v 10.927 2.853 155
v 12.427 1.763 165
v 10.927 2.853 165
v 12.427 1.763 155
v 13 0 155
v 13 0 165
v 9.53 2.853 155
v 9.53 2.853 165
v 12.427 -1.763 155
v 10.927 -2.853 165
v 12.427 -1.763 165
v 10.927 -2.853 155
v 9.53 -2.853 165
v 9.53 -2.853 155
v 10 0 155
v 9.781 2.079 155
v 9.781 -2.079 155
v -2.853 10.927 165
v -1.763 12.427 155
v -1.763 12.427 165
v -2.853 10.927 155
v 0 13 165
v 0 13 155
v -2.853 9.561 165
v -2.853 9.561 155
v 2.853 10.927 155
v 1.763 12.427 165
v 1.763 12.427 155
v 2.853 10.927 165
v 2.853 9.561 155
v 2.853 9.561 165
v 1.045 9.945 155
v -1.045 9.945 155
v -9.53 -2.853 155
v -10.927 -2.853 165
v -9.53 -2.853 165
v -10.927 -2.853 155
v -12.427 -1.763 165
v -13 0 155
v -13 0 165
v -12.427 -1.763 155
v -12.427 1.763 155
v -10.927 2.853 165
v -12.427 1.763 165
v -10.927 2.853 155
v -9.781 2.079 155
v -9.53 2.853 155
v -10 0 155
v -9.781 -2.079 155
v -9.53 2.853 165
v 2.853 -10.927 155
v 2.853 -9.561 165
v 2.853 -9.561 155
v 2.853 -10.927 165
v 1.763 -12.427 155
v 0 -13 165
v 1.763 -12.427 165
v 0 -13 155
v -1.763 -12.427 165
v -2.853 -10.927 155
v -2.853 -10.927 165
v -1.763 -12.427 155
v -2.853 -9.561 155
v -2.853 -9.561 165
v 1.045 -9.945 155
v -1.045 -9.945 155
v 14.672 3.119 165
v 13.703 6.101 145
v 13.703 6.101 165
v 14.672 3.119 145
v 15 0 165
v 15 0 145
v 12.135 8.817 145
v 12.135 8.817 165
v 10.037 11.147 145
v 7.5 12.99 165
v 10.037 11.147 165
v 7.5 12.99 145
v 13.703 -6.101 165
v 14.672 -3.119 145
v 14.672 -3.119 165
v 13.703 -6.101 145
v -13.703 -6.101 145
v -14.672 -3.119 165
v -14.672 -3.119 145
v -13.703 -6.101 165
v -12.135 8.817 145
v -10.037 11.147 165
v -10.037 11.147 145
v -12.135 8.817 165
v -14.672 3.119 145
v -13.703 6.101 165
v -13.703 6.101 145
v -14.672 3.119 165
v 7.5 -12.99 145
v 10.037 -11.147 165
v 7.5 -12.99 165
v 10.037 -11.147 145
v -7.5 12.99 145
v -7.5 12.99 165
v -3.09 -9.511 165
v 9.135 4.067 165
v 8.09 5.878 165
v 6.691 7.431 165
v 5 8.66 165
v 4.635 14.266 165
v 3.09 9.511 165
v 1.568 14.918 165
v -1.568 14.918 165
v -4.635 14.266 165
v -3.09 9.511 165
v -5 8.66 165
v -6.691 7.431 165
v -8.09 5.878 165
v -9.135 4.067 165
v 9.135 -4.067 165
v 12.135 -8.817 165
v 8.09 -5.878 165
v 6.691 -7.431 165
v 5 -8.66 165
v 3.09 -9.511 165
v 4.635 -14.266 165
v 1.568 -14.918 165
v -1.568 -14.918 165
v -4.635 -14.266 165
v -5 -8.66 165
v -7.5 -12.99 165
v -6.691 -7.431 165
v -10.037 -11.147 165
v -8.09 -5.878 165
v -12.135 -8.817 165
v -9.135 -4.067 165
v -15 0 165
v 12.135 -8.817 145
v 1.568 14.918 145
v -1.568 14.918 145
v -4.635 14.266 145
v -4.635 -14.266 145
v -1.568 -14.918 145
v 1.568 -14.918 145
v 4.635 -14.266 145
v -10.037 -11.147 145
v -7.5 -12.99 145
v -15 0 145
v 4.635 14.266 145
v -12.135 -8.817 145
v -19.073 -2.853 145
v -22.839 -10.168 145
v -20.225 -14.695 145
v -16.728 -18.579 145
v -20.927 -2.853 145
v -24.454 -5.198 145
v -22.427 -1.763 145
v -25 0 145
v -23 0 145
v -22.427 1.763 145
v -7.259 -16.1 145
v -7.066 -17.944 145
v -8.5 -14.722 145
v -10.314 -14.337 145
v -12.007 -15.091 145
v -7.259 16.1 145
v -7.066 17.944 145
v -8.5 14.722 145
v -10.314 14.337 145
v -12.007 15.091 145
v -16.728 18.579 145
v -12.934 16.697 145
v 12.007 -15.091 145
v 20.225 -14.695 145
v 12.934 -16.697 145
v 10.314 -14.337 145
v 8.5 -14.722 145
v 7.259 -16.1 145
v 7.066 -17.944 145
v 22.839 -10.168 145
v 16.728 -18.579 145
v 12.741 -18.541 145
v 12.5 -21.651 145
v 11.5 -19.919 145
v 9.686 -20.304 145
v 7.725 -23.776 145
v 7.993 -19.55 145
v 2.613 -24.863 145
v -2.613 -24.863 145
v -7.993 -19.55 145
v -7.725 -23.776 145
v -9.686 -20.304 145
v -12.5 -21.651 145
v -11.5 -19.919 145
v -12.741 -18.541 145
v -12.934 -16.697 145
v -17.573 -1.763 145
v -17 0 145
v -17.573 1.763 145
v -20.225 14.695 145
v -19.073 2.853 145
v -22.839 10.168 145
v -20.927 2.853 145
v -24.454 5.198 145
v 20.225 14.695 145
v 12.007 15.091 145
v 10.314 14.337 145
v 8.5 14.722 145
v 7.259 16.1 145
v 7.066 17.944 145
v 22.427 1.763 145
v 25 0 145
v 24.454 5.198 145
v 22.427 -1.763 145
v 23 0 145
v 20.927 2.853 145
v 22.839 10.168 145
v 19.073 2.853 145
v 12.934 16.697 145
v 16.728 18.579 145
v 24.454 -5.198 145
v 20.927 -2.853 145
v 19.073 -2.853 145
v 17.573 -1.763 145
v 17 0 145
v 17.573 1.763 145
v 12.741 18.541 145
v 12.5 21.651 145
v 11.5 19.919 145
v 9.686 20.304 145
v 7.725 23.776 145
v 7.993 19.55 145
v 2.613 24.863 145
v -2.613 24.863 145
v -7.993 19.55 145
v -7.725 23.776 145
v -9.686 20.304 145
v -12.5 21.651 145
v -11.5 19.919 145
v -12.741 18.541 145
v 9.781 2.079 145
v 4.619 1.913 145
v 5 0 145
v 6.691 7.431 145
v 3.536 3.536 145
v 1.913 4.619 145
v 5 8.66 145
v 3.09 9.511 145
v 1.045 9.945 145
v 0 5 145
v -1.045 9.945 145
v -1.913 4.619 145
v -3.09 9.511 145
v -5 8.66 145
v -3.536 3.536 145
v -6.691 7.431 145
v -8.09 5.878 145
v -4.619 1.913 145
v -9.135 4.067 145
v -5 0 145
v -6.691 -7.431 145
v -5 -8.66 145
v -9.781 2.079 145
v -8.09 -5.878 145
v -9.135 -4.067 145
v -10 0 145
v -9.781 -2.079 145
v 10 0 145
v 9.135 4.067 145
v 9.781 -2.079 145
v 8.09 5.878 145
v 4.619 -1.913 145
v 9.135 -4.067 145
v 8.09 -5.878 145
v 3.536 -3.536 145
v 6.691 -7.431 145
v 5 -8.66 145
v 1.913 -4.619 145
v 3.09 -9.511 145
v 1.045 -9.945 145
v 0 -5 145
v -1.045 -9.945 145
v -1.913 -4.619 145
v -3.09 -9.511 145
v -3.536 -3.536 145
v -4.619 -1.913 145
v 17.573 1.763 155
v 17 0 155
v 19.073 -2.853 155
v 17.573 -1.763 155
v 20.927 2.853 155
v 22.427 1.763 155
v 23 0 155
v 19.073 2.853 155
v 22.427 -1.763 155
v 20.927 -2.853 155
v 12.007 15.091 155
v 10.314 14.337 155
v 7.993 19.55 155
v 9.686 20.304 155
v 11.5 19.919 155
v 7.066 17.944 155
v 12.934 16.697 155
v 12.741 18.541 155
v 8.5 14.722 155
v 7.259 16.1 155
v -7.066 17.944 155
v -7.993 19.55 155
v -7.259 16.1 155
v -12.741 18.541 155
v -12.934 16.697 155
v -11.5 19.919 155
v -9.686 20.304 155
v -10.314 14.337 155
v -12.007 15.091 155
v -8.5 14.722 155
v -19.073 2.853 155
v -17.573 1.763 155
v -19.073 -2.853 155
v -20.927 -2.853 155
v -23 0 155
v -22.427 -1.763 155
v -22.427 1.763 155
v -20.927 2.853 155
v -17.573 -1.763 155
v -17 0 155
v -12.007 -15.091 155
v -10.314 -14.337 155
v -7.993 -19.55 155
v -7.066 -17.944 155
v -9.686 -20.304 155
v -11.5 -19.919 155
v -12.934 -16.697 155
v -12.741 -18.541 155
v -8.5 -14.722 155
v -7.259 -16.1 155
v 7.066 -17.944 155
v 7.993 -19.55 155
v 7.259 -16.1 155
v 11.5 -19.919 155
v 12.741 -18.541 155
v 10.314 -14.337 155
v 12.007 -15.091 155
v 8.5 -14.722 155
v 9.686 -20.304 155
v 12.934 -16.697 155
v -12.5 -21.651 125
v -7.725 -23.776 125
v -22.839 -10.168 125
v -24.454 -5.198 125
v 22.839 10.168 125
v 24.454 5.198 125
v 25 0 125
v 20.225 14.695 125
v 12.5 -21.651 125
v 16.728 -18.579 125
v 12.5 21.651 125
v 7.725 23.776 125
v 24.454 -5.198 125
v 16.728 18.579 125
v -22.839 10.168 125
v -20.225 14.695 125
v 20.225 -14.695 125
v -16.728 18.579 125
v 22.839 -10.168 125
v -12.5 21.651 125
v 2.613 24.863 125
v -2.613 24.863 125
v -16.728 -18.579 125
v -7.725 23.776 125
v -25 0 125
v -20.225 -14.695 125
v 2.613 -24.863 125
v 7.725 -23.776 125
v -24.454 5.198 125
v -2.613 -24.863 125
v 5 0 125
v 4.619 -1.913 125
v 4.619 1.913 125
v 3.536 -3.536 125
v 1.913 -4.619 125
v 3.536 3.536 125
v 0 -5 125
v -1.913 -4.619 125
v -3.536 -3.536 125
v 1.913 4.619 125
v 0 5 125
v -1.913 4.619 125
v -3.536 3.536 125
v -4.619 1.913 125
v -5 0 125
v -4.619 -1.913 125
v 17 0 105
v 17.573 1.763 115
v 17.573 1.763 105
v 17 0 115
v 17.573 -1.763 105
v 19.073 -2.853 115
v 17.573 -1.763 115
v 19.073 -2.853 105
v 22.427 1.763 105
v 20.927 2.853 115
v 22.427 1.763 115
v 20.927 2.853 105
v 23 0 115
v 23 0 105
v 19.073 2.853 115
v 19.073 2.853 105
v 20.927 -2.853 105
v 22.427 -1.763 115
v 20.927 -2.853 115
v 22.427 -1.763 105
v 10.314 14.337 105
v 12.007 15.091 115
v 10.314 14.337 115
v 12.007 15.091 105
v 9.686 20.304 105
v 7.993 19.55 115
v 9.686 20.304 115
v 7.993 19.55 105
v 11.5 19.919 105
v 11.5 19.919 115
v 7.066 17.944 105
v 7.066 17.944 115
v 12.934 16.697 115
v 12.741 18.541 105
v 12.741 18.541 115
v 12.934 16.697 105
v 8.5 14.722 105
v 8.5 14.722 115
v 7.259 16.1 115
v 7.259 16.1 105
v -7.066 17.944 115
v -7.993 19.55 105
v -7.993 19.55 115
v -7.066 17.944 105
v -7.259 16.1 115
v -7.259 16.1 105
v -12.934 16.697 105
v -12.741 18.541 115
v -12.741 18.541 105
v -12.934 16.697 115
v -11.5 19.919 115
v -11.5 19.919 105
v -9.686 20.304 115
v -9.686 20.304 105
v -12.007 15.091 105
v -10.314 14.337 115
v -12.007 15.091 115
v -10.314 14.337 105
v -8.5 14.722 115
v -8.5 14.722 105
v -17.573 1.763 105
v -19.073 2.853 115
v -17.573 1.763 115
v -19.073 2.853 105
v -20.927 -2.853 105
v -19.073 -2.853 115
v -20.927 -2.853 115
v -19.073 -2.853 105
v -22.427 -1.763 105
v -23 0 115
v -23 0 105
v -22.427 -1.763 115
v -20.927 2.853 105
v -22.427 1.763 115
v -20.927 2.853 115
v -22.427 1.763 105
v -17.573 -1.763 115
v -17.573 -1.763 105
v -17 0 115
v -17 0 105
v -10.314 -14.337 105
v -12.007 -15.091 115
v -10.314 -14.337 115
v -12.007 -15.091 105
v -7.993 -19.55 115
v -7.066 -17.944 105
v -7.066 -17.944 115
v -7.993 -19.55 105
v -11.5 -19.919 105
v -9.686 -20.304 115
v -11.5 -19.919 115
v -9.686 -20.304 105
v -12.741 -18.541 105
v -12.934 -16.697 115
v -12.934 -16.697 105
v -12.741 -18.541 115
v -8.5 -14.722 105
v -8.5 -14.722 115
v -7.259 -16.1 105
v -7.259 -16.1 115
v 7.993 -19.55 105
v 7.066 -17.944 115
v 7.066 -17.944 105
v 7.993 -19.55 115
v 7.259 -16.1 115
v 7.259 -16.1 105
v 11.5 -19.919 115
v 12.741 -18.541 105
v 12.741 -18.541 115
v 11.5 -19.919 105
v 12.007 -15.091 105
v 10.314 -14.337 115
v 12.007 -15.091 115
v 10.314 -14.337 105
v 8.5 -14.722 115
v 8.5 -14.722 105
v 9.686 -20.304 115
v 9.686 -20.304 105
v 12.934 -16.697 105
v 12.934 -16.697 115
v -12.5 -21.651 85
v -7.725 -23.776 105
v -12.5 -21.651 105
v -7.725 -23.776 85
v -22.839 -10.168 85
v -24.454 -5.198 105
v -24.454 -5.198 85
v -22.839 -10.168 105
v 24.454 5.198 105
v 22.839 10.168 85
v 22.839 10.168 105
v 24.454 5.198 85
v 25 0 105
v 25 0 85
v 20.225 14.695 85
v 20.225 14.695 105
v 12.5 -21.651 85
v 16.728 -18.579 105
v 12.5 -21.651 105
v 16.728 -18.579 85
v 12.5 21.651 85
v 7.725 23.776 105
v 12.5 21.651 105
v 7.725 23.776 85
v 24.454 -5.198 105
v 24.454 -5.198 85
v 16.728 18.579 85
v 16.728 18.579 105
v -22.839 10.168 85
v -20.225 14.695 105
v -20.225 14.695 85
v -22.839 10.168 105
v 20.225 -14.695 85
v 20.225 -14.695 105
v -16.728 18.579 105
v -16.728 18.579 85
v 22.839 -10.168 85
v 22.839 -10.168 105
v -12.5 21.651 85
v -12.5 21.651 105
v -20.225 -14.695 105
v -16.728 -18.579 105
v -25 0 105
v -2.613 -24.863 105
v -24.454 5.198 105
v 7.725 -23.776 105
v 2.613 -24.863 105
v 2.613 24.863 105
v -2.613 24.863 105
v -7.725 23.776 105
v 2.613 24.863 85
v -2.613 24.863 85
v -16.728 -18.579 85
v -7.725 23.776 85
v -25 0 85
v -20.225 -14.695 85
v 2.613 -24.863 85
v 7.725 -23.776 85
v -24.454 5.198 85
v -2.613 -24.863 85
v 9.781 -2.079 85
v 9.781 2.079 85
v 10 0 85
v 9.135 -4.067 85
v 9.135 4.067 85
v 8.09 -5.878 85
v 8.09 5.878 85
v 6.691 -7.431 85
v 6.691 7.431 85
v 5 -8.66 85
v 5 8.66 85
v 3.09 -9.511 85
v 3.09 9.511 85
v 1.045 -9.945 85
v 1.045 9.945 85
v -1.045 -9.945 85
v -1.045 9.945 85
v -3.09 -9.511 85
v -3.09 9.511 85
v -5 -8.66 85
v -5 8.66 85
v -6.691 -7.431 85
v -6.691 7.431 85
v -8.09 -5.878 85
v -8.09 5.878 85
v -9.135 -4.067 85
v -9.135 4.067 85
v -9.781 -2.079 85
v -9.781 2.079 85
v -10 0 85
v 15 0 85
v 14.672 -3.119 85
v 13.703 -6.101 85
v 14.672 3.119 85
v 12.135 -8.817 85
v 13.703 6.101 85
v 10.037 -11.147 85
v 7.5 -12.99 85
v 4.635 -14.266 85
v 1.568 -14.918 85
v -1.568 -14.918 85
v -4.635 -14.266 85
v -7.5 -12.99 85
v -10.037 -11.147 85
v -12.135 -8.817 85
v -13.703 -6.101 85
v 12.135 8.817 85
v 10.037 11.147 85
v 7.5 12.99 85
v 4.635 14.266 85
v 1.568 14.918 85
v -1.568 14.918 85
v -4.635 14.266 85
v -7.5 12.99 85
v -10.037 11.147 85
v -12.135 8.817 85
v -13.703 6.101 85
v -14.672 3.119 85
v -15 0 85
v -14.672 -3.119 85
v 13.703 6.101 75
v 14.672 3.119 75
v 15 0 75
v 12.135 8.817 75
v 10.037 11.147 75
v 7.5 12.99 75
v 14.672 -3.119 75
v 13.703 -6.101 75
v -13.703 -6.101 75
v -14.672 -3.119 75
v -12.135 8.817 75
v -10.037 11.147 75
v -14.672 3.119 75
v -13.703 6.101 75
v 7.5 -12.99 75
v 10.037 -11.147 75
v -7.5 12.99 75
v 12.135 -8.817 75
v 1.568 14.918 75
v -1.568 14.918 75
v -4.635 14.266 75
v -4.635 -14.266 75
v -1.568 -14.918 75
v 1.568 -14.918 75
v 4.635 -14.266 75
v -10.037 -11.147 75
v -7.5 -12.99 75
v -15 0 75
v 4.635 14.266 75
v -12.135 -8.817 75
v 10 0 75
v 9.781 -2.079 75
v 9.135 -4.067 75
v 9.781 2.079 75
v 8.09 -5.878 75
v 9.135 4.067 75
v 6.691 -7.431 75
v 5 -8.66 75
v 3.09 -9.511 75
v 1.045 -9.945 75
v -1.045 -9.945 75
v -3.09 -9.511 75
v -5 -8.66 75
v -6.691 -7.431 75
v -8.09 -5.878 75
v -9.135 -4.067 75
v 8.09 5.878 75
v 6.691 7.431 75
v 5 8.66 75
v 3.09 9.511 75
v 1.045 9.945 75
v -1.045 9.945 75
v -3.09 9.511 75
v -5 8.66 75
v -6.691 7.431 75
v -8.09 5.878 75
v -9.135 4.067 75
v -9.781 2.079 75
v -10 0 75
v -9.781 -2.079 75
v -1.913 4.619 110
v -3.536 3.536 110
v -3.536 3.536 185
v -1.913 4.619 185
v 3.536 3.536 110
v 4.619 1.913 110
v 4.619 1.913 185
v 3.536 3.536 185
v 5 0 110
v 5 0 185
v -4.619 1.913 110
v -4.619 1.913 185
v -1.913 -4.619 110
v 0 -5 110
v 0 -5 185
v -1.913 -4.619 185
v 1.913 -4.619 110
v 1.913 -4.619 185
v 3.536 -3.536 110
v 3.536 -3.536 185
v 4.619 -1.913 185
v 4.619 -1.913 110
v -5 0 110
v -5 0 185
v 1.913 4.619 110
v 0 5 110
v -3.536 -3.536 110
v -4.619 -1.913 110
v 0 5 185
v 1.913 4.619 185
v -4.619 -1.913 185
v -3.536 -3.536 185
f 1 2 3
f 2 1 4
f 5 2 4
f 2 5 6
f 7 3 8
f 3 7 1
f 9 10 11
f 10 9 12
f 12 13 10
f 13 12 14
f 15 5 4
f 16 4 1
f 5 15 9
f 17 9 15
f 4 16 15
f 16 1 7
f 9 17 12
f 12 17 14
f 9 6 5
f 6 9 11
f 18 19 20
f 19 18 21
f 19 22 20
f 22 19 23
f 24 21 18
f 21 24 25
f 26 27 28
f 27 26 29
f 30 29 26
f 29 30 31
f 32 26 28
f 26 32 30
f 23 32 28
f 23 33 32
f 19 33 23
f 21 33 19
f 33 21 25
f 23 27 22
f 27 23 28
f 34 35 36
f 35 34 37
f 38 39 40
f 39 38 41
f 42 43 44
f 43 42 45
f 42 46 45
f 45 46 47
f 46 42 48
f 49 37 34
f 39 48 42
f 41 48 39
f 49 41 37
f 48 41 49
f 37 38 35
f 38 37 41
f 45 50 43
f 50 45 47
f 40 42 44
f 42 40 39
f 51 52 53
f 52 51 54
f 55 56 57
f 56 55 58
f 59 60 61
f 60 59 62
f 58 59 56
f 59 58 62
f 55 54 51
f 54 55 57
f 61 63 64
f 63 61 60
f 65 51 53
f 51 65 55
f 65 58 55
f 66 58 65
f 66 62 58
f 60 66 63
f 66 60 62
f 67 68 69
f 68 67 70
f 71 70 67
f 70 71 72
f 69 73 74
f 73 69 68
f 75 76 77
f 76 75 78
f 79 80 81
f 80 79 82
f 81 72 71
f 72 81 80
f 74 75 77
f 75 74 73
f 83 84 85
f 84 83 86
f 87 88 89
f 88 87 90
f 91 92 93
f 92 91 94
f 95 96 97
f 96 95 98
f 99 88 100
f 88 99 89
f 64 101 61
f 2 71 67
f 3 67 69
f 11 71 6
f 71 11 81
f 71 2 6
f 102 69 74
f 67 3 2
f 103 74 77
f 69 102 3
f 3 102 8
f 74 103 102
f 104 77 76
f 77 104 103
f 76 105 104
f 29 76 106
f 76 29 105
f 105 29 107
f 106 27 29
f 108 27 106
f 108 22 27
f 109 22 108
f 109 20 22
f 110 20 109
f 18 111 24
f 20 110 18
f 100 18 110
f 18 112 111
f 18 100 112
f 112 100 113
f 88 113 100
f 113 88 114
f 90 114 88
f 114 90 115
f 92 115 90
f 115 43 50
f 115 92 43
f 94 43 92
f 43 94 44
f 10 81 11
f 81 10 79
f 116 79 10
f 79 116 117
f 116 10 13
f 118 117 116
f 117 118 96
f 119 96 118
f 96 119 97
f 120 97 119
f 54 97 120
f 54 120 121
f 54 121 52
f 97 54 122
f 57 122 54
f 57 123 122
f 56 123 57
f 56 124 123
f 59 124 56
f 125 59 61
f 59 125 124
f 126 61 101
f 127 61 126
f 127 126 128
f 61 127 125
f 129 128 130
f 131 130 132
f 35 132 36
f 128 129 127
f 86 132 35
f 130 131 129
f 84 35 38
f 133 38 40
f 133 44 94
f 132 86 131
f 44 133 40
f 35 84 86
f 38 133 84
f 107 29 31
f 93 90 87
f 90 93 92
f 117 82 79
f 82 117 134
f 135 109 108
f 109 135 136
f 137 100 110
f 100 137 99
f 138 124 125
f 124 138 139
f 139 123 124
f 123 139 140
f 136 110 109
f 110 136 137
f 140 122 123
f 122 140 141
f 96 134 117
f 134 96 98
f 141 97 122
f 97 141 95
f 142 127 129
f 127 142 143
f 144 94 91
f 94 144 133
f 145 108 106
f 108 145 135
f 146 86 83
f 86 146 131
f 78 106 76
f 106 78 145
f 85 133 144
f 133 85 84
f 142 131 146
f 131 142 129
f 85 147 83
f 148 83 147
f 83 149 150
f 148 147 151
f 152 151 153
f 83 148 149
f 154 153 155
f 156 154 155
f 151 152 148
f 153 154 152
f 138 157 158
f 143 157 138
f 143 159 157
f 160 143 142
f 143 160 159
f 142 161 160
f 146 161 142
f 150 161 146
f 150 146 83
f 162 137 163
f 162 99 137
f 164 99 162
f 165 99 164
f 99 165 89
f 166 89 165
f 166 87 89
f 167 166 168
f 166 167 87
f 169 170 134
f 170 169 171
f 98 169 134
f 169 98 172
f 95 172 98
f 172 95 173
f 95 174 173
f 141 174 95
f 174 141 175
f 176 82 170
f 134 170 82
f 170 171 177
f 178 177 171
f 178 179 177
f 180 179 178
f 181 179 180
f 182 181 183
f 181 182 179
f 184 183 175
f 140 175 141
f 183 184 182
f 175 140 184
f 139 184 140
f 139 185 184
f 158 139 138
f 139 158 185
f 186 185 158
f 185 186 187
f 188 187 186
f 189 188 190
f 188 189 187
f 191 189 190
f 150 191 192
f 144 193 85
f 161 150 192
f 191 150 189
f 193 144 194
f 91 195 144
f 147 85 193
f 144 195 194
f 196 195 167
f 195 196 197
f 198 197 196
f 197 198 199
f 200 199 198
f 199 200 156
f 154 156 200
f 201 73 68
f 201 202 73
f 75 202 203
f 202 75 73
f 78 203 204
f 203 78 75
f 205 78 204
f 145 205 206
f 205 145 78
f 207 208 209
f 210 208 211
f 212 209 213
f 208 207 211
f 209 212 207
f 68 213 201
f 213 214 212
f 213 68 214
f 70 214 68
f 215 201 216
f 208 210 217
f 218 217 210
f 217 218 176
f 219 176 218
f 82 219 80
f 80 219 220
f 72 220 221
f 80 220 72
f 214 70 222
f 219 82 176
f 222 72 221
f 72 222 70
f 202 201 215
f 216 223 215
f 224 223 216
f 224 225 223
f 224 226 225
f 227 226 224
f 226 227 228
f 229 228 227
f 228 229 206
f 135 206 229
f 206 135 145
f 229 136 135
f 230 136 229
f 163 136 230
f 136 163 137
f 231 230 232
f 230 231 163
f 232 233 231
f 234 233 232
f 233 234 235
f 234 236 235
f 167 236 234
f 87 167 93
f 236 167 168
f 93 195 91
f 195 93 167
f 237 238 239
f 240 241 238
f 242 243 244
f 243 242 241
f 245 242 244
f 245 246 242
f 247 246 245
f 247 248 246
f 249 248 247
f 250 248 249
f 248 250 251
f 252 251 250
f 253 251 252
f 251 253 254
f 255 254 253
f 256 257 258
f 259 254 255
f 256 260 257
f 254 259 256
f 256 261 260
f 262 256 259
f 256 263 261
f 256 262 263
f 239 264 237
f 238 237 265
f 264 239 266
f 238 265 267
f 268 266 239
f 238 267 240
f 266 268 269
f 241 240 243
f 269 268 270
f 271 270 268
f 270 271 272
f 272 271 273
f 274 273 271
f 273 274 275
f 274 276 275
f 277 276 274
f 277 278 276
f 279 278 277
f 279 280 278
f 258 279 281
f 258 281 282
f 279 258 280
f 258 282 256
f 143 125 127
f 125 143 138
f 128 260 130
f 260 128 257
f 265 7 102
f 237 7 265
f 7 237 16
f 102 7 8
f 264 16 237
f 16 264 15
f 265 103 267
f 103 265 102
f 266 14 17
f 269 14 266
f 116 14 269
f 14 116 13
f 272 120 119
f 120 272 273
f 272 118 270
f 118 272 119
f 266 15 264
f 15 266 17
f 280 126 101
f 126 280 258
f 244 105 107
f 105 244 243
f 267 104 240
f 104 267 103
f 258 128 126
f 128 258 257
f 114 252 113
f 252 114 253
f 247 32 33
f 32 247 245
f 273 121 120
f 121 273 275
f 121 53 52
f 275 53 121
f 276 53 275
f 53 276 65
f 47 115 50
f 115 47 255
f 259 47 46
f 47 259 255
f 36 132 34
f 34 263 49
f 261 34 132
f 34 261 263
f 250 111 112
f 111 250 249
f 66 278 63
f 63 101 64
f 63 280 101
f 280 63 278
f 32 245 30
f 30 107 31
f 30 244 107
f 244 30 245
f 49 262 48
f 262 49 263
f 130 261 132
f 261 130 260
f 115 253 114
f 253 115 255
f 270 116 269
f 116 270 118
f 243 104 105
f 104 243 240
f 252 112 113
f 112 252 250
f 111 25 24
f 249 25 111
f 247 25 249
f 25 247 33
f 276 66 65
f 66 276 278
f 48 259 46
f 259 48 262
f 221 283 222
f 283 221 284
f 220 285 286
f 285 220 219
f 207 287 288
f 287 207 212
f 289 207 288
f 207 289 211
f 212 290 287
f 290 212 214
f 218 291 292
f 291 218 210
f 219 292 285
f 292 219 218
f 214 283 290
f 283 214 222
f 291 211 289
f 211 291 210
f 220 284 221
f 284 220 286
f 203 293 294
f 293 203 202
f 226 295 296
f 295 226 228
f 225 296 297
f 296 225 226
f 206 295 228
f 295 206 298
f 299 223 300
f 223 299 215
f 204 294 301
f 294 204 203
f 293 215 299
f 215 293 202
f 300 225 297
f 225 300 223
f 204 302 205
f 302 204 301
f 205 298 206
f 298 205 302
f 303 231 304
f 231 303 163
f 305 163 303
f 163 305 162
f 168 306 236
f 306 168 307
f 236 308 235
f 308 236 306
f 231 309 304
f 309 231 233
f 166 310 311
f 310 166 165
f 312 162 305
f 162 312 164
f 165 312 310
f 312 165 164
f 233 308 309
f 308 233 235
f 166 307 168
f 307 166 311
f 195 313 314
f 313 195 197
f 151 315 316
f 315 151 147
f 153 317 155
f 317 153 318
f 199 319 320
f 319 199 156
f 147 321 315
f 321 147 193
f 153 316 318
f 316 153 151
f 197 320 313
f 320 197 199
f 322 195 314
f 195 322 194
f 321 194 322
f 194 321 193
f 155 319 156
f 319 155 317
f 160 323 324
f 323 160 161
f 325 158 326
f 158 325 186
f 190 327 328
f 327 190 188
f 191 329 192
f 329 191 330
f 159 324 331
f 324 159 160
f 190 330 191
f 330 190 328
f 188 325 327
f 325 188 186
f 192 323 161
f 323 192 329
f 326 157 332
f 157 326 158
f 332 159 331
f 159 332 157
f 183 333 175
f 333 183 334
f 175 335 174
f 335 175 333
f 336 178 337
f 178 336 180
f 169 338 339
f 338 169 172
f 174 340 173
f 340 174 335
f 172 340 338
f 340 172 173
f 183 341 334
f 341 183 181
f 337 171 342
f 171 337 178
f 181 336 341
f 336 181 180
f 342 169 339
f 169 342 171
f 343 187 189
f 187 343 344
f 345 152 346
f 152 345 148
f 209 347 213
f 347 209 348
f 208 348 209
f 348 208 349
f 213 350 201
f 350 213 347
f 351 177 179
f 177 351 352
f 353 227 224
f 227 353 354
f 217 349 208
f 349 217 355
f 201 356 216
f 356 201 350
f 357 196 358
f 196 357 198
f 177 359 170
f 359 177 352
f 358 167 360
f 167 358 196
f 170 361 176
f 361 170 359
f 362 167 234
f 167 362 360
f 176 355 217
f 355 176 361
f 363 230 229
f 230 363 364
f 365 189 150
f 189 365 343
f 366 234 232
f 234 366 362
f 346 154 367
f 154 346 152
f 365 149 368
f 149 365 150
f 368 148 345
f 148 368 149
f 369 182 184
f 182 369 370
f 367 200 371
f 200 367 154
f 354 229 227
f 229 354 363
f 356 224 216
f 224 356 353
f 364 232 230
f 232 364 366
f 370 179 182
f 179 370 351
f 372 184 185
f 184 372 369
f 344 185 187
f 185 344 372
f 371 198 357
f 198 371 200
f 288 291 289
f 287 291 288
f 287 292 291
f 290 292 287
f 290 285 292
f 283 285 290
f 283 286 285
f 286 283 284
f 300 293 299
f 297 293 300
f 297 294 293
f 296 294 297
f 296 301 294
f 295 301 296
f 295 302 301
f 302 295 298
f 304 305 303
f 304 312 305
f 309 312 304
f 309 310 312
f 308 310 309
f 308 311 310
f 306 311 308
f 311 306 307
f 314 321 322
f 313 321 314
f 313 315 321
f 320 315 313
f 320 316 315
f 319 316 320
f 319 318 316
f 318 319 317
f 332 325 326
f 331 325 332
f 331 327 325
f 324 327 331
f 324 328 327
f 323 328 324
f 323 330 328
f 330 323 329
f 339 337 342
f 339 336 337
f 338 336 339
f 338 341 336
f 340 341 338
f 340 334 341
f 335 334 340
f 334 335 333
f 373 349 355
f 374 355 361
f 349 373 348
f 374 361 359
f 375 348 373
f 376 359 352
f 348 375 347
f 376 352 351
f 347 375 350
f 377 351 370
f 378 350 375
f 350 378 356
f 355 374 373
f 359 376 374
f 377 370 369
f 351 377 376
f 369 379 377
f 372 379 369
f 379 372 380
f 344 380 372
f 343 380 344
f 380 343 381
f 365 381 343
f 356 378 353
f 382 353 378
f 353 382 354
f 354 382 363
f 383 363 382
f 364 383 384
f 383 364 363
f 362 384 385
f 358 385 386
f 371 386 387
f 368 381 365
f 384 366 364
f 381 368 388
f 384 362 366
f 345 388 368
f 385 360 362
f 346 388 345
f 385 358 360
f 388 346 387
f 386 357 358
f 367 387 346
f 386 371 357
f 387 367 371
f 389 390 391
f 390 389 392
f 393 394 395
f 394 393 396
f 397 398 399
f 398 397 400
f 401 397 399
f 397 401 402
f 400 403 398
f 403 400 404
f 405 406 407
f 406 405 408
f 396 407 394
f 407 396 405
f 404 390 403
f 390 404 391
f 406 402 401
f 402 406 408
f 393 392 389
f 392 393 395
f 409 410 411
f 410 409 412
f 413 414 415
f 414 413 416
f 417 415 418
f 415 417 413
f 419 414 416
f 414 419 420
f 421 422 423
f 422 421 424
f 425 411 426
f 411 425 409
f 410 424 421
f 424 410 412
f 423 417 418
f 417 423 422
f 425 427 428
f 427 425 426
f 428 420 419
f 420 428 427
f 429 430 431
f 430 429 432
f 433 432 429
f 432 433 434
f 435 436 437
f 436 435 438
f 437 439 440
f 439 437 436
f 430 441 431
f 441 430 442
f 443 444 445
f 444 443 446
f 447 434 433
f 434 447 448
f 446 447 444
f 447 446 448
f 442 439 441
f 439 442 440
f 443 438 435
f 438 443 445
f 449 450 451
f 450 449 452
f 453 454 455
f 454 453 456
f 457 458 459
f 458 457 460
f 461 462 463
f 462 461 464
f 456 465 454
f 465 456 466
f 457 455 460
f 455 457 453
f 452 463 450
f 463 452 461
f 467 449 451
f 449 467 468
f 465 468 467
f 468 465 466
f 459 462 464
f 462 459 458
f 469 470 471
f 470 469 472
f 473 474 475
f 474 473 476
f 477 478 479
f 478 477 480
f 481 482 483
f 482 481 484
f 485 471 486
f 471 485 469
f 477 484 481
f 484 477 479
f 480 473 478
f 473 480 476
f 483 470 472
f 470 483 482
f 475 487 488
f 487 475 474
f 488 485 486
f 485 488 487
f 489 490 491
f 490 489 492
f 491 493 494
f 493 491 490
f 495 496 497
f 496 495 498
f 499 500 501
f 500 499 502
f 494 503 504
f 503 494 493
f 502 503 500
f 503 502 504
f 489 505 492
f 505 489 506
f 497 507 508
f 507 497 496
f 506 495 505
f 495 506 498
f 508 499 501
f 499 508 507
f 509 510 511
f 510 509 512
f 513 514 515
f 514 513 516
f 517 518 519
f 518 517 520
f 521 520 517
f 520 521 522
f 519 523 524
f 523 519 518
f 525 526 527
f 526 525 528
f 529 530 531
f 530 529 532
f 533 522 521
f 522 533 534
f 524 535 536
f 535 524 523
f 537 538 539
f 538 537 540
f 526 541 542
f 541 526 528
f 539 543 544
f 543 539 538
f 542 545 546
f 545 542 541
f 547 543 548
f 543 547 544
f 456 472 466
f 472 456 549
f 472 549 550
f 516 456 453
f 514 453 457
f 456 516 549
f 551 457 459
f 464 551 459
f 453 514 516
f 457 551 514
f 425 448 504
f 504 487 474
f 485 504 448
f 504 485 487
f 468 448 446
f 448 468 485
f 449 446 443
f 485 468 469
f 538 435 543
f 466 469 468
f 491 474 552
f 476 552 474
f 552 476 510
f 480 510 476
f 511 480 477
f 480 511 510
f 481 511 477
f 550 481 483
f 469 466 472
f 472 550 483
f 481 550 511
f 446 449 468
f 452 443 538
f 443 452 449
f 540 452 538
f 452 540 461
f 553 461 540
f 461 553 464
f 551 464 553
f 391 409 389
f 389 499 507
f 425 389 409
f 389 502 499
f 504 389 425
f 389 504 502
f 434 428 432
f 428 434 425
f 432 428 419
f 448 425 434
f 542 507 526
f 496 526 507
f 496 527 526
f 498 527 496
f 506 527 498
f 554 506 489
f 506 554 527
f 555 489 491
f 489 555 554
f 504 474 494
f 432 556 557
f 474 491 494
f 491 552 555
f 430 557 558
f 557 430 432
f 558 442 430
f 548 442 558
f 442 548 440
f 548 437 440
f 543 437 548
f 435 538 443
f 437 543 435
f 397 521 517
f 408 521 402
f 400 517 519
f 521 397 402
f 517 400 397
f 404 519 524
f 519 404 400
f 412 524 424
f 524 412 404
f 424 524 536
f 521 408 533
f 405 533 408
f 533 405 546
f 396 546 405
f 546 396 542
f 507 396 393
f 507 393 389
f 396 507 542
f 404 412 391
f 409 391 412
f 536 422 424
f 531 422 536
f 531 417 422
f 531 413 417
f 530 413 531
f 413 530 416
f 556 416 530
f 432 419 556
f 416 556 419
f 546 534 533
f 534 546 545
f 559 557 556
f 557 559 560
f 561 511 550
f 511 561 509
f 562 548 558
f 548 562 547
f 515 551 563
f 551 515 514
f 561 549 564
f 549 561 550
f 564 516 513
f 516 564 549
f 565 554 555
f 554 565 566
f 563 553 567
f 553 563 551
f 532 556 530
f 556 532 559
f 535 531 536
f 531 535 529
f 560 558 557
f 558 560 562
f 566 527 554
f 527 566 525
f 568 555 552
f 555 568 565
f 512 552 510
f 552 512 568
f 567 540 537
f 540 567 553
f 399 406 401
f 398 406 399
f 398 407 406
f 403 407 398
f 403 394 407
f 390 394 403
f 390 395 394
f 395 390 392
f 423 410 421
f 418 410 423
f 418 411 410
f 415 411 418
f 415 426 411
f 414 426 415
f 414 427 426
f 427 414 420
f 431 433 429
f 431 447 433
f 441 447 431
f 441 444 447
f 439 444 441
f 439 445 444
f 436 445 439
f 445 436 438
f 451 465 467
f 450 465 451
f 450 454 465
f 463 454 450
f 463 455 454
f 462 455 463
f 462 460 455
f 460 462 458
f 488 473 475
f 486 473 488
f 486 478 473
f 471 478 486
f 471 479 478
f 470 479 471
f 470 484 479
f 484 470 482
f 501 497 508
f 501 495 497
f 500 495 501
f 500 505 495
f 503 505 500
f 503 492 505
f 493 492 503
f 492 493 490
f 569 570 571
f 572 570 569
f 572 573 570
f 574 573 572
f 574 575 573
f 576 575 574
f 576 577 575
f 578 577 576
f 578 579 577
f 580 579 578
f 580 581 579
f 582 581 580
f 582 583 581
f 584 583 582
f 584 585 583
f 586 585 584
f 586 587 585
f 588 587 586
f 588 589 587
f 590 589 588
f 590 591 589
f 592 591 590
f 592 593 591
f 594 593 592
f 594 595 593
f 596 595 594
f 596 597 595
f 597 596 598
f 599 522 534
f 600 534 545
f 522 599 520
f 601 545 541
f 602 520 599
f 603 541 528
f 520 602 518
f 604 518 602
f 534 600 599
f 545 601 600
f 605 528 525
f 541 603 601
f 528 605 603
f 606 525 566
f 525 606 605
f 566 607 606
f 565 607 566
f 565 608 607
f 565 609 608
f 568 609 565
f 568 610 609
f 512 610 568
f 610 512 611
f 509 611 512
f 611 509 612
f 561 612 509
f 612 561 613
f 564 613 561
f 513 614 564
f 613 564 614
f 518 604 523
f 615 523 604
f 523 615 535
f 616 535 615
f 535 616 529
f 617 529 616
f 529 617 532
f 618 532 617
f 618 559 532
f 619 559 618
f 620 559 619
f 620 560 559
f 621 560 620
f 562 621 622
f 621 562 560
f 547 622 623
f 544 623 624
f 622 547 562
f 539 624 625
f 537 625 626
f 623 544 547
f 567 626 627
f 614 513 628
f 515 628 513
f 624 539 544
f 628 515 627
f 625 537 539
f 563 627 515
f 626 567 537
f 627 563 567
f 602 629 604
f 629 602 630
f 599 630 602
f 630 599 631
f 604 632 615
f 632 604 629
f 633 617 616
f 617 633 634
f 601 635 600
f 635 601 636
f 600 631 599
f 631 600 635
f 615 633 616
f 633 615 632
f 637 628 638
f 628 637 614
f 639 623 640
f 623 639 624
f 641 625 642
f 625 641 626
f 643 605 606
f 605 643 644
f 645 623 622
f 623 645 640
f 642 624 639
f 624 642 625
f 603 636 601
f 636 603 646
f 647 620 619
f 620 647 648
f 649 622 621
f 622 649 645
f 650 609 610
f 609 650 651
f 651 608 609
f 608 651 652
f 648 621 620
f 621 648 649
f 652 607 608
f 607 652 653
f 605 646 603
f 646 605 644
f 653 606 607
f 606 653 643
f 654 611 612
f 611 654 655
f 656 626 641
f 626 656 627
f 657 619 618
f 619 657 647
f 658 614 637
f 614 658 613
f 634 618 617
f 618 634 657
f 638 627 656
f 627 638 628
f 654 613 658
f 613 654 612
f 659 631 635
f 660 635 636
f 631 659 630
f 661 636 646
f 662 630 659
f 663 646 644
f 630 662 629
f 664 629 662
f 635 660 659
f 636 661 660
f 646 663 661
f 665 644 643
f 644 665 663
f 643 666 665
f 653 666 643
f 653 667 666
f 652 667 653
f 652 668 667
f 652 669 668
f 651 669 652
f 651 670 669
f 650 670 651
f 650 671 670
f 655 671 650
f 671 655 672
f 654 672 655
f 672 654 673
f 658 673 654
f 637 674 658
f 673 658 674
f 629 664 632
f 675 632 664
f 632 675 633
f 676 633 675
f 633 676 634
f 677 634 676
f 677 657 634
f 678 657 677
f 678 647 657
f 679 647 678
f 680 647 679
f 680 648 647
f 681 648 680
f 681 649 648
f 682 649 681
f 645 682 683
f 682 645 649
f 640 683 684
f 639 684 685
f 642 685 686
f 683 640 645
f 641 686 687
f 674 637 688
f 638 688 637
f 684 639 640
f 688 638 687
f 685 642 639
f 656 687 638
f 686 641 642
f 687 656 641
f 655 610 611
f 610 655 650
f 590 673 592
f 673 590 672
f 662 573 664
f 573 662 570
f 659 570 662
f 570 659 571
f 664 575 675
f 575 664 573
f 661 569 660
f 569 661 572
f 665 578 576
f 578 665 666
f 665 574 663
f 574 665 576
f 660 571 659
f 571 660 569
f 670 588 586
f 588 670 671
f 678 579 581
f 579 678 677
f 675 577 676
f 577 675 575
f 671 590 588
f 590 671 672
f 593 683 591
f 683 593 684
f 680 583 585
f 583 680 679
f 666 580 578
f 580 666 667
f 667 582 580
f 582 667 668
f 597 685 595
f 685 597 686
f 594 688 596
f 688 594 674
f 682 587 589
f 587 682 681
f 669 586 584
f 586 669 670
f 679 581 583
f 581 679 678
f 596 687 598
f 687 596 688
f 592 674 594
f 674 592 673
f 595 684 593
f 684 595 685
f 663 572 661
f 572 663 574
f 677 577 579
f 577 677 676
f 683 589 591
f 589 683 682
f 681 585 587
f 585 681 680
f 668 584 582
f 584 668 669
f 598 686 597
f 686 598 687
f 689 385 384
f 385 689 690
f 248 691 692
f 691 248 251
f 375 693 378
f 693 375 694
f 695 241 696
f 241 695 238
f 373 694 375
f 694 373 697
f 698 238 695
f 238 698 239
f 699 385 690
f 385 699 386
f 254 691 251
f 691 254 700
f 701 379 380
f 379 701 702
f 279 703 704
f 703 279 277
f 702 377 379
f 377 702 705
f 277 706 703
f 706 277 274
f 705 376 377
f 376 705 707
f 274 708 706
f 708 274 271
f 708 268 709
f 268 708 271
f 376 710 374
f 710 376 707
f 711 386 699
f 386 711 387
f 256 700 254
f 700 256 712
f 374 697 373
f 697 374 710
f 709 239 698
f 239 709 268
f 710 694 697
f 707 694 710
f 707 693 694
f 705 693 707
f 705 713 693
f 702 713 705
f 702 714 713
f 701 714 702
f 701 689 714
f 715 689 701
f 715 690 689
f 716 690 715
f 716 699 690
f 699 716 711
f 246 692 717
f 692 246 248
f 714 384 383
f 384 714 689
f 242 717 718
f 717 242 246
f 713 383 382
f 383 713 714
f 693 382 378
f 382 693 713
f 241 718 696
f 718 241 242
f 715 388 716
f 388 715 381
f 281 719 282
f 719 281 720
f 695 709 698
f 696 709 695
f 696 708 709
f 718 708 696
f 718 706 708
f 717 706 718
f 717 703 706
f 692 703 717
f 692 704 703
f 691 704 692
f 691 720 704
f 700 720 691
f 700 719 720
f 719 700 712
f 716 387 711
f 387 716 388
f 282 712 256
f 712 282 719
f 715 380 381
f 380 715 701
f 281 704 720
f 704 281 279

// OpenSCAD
// Parameters for components dimensions
module input_adapter() {
    difference() {
        cylinder(h=20, d=30);
        translate([0, 0, -1]) cylinder(h=22, d=20);
        for (i = [0:3]) {
            rotate([0, 0, i * 90]) translate([10, 0, 10])
            cylinder(h=20, d=6); // Mounting holes
        }
    }
}

module output_adapter() {
    difference() {
        cylinder(h=20, d=30);
        translate([0, 0, -1]) cylinder(h=22, d=20);
        for (i = [0:3]) {
            rotate([0, 0, i * 90]) translate([10, 0, 10])
            cylinder(h=20, d=6); // Mounting holes
        }
    }
}

module central_shaft() {
    cylinder(h=75, d=10); // Length extended for full connection
}

module spacer_ring() {
    difference() {
        cylinder(h=10, d=35); // Increased thickness
        translate([0, 0, -1]) cylinder(h=12, d=25);
    }
}

module flange_plate() {
    difference() {
        cylinder(h=10, d=50);
        for (i = [0:5]) { // Increased number of holes
            rotate([0, 0, i * 60]) translate([20, 0, 5])
            cylinder(h=10, d=6); // Holes for nuts/bolts
        }
    }
}

module nut() {
    cylinder(h=5, d=6);
}

module bolt() {
    cylinder(h=25, d=6);
}

// Assembling the coupling in layers

module layer_1() {
    translate([0, 0, 145]) input_adapter();
}

module layer_2() {
    translate([0, 0, 135]) flange_plate();
    for (i = [0:5]) { // Increased number of connections
        rotate([0, 0, i * 60]) translate([20, 0, 135])
        nut();
    }
}

module layer_3() {
    translate([0, 0, 130]) spacer_ring();
    for (i = [0:5]) { // Increased bolt connections
        rotate([0, 0, i * 60]) translate([20, 0, 130])
        bolt();
    }
}

module layer_4() {
    translate([0, 0, 125]) flange_plate();
    for (i = [0:5]) {
        rotate([0, 0, i * 60]) translate([20, 0, 125])
        nut();
    }
}

module layer_5() {
    translate([0, 0, 110]) central_shaft();
}

module layer_6() {
    translate([0, 0, 95]) flange_plate();
    for (i = [0:5]) {
        rotate([0, 0, i * 60]) translate([20, 0, 95])
        nut();
    }
}

module layer_7() {
    translate([0, 0, 90]) spacer_ring();
    for (i = [0:5]) {
        rotate([0, 0, i * 60]) translate([20, 0, 90])
        bolt();
    }
}

module layer_8() {
    translate([0, 0, 85]) flange_plate();
    for (i = [0:5]) {
        rotate([0, 0, i * 60]) translate([20, 0, 85])
        nut();
    }
}

module layer_9() {
    translate([0, 0, 75]) output_adapter();
}

// Final assembly
module flexible_coupling() {
    layer_1();
    layer_2();
    layer_3();
    layer_4();
    layer_5();
    layer_6();
    layer_7();
    layer_8();
    layer_9();
}

// Render the model
flexible_coupling();
